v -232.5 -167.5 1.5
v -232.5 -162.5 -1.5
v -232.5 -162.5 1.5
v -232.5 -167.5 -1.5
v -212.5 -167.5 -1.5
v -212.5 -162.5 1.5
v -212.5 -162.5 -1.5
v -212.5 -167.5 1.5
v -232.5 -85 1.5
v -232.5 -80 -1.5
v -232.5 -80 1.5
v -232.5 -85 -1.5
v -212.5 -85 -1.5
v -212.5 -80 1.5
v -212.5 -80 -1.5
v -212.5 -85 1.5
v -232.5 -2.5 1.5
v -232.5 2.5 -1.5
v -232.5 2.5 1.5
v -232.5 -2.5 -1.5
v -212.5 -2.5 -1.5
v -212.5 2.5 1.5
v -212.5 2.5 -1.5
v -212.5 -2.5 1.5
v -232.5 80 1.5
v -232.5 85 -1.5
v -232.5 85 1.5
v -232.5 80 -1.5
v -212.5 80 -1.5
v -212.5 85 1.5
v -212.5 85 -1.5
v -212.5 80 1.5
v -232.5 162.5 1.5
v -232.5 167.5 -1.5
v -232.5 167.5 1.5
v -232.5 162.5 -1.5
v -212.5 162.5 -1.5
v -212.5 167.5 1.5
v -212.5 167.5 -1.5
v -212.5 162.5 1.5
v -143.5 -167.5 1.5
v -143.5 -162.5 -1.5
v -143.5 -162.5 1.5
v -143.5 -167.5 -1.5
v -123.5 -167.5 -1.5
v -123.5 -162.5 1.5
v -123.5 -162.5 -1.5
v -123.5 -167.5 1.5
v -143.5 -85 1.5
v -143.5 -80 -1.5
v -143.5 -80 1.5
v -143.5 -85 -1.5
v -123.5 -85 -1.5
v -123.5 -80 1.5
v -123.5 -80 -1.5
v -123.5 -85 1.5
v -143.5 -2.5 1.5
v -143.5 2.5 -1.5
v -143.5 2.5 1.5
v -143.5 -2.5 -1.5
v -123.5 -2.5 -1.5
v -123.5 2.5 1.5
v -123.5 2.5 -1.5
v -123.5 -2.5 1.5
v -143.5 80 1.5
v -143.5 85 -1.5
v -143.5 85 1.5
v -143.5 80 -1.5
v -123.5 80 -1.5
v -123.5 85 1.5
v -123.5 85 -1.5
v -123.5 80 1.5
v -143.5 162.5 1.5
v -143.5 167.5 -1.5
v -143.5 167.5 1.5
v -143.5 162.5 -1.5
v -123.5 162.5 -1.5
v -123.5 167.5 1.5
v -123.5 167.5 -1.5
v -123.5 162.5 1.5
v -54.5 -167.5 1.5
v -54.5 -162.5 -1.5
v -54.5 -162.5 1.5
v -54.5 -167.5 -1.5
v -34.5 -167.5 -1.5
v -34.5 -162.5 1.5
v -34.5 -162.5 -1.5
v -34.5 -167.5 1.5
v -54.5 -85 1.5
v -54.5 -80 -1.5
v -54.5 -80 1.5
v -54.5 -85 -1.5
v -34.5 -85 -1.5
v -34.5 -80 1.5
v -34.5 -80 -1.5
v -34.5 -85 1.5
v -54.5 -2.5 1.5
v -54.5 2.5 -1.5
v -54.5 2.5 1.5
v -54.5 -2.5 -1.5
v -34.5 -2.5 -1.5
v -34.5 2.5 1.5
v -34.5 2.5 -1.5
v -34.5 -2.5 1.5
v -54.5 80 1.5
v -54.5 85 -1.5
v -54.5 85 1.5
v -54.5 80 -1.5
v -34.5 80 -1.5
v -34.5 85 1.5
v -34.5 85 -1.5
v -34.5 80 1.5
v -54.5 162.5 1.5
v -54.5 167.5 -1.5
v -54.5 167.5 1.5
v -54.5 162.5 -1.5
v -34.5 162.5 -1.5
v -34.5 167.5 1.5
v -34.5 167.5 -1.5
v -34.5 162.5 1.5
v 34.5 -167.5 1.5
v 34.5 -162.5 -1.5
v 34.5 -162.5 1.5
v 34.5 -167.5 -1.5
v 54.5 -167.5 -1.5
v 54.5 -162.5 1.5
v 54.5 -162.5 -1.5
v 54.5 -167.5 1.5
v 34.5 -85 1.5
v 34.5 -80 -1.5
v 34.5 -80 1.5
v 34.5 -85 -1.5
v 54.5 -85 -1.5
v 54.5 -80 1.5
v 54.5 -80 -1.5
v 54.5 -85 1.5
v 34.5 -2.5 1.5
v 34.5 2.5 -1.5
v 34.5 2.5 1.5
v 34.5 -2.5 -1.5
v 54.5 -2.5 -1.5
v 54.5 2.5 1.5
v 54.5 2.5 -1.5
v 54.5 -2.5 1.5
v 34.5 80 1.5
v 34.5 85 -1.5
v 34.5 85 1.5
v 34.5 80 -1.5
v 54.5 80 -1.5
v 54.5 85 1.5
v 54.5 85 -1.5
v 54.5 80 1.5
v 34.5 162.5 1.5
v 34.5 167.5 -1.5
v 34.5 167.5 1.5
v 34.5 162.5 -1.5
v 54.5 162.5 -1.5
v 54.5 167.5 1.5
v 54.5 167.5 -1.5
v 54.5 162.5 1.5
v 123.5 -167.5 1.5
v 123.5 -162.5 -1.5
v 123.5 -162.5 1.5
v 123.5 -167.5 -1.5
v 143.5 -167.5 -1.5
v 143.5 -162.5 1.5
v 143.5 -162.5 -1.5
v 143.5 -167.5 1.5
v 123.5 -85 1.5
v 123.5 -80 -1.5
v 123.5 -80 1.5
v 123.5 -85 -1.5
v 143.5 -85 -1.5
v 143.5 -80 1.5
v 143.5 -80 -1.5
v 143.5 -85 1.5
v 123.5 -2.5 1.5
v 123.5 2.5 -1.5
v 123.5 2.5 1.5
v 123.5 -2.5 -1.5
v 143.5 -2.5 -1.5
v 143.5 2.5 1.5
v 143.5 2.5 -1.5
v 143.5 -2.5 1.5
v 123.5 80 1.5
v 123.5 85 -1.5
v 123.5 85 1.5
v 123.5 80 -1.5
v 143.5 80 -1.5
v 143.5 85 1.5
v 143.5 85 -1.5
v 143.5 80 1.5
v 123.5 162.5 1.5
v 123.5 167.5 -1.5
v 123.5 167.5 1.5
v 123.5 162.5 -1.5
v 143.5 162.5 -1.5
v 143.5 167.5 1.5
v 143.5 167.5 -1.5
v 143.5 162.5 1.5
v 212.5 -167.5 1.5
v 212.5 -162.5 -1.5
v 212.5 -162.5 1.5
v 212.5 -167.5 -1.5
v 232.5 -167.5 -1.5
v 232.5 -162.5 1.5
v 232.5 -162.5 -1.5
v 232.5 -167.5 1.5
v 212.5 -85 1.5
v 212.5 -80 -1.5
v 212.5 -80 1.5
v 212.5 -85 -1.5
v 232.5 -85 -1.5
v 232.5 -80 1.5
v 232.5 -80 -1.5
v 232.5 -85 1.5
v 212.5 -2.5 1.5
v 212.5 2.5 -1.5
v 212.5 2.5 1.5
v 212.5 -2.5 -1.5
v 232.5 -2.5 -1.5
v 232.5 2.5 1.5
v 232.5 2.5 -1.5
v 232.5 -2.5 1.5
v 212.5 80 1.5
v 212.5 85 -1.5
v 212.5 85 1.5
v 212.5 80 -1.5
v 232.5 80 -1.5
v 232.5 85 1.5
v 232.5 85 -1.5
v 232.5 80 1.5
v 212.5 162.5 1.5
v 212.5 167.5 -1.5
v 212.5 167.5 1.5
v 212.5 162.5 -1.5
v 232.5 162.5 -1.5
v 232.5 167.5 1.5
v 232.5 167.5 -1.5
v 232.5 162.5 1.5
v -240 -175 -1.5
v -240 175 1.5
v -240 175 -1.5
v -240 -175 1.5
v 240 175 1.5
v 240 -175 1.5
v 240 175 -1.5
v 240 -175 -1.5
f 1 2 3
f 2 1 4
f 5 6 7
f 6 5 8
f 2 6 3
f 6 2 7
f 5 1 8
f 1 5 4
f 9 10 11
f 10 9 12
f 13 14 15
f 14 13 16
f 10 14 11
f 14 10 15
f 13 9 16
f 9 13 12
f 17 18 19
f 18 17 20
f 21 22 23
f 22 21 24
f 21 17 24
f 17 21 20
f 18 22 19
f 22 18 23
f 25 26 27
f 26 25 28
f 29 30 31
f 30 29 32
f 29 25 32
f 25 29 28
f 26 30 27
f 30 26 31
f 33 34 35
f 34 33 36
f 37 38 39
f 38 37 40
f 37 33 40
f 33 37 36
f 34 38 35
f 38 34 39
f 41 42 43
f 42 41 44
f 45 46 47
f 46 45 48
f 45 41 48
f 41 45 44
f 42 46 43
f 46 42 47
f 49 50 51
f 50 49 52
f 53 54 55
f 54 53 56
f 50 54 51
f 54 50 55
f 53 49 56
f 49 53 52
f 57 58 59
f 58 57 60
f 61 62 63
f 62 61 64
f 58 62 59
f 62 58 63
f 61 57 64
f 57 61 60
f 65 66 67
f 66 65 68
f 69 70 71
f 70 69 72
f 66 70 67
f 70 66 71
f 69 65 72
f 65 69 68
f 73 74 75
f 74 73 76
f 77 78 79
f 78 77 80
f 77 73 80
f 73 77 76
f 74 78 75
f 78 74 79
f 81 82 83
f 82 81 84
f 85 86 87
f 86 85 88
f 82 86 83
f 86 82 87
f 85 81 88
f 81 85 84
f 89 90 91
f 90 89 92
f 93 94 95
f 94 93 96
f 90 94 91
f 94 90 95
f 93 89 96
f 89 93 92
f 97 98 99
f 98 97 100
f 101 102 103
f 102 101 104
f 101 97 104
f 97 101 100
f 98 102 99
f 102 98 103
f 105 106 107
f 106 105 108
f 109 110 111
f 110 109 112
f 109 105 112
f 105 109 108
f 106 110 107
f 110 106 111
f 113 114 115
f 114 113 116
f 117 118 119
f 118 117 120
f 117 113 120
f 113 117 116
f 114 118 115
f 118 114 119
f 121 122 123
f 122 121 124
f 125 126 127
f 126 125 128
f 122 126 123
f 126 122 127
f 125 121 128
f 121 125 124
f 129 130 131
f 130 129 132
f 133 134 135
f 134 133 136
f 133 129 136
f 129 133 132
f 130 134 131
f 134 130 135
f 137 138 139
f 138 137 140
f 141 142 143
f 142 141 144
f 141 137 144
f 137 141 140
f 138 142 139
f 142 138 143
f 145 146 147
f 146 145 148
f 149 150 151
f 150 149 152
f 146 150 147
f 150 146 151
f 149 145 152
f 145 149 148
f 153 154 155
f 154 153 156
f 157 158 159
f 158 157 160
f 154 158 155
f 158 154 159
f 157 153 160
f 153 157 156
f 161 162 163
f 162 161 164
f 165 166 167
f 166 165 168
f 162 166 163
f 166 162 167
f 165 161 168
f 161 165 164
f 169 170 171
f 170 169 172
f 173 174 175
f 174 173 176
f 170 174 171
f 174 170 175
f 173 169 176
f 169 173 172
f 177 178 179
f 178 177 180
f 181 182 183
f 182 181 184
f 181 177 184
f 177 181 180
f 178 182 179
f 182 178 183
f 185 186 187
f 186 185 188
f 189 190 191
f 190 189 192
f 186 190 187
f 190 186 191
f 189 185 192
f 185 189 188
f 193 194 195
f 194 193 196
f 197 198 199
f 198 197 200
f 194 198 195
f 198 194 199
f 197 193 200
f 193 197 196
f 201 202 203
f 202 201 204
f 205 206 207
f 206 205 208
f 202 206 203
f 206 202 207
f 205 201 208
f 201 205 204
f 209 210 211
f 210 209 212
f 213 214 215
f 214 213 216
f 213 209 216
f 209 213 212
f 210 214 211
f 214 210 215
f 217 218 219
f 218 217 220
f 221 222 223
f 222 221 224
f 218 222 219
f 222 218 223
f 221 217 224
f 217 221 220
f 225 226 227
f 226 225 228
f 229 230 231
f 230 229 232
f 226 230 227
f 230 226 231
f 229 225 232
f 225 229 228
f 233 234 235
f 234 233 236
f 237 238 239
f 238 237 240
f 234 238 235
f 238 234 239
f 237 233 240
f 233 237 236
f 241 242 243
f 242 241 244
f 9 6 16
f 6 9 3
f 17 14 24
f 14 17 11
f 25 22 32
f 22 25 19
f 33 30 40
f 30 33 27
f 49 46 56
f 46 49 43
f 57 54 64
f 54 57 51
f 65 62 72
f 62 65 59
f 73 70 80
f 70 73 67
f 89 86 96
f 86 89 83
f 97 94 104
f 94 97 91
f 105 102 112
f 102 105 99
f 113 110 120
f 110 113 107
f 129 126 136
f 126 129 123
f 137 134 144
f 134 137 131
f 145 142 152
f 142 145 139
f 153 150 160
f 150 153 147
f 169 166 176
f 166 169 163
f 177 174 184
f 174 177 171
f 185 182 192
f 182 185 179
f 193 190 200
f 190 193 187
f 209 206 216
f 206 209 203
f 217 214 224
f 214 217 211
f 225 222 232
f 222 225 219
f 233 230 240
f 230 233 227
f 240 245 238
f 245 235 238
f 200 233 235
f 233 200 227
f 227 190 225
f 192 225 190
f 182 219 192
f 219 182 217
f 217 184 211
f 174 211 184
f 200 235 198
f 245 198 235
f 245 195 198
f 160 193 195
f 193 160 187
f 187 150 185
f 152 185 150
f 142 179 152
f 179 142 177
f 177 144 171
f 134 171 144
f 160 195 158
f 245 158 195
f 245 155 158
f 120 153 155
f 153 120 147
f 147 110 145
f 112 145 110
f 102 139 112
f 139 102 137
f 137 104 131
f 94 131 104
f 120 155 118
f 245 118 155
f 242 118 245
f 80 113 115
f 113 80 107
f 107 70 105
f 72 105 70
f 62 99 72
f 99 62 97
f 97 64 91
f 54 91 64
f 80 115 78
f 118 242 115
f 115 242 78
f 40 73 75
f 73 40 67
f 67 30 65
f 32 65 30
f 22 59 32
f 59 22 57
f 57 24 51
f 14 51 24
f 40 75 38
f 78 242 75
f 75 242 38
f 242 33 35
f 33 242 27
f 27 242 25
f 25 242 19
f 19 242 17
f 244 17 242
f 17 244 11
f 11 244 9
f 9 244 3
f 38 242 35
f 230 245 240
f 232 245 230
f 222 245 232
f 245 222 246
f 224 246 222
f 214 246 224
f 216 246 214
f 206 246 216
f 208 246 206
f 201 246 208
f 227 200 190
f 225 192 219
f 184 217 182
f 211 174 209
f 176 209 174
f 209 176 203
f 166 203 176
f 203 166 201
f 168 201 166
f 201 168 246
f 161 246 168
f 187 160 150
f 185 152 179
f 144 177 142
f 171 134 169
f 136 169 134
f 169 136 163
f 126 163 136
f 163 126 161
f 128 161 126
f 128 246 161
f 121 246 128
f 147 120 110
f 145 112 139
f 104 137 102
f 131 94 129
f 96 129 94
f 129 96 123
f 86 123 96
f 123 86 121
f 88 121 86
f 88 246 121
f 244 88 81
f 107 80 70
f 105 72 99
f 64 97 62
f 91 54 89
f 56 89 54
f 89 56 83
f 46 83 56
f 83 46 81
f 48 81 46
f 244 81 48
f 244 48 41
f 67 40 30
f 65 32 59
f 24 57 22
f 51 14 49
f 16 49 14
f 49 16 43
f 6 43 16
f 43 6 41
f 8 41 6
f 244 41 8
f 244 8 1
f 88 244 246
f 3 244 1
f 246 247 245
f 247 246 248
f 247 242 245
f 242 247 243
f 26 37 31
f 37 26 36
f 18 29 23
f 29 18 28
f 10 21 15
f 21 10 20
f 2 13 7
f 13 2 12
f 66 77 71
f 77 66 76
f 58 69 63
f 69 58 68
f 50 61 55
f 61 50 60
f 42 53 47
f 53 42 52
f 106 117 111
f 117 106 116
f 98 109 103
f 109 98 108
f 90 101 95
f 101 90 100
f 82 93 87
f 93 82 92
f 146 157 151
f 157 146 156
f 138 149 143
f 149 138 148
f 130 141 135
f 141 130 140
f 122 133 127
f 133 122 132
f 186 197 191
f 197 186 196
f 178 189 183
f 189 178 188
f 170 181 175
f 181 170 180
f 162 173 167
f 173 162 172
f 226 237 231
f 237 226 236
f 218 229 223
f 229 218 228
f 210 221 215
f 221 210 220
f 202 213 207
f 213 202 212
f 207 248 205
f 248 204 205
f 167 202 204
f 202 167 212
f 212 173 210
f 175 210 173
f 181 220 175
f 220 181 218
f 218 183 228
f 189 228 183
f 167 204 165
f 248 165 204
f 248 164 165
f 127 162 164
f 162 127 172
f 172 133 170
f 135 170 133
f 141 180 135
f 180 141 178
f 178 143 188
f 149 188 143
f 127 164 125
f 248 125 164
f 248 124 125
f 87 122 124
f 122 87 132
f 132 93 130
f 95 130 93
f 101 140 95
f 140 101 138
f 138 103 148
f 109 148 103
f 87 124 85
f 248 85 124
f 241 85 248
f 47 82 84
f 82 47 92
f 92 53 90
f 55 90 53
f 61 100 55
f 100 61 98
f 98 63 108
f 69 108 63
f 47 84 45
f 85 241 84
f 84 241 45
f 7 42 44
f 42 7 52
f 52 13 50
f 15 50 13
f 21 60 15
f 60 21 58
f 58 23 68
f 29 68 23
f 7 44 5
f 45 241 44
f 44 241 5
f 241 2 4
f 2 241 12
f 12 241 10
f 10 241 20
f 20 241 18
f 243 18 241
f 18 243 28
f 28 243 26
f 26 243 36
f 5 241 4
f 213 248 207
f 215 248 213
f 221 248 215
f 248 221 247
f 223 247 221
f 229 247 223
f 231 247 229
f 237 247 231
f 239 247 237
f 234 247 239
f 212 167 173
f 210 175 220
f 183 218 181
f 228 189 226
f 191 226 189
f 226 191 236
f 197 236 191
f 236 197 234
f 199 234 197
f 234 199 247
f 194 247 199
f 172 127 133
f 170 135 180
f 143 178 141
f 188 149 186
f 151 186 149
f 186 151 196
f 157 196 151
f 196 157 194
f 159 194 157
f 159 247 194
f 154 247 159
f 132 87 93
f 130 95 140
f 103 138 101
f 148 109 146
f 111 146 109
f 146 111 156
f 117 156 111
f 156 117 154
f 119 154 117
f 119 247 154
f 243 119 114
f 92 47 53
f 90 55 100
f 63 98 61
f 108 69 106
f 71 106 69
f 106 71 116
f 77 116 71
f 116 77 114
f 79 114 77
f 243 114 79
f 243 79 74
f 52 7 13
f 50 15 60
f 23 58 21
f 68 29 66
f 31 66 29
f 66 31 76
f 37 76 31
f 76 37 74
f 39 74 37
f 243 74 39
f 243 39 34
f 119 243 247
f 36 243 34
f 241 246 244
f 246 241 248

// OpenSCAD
// draw a hole
// size = [ x, y, z ] the size of the cube
module hole( size, pos=[0, 0, 0] ){
  translate( pos ) {
    cube( size , true);
  }
}

//  create a board with holes
//  -------------------------
//
//    +--------------------------------------------------+
//    |   ---       ---       ---       ---        ---   |
//    |                                                  |
//    |                                                  |
//    |   ---       ---       ---       ---        ---   |
//    |                                                  |
//    |                                                  |
//    |   ---       ---       ---       ---        ---   |
//    |                                                  |
//    |                                                  |
//    |   ---       ---       ---       ---        ---   |
//    |                                                  |
//    +--------------------------------------------------+
//
// holes  = [ x , y ]  number of holes
// size   = [ x, y, z] the size of the board
// hole   = [ x, y ]   the size of a hole in the board
// offset = [ x, y ]   space to save at the borders
//
module board( holes, size, holesize , offset = [ 0, 0 ]){

    full_xsize = size[0];
    full_ysize = size[1];

    xsize = full_xsize - offset[0];
    ysize = full_ysize - offset[1];
    depth = size[2];

    xholes = holes[0];
    yholes = holes[1];

    xhole_size = holesize[0] ;
    yhole_size = holesize[1] ;

    xoffset = xhole_size / 2;
    yoffset = yhole_size / 2;

    full_xhole_size = xholes * xhole_size;
    full_yhole_size = yholes * yhole_size;

    full_xhole_space = xsize - full_xhole_size - xhole_size;
    full_yhole_space = ysize - full_yhole_size - yhole_size;

    xhole_space = full_xhole_space / xholes ;
    yhole_space = full_yhole_space / yholes ;

    difference(){
        color("yellow")cube(size, true);
        translate( [ - xsize / 2
                   , - ysize /2
                   , 0
                   ] ){
            for (x = [0 : xholes]){
                for (y = [0 : yholes]){
                    color("LightBlue"){
                        hole( [ xhole_size
                              , yhole_size
                              , depth + 10
                              ]
                            , [ xoffset + x * xhole_size + x * xhole_space
                              , yoffset + y * yhole_size + y * yhole_space
                              , 0
                              ]
                        );
                    }
                }
            }
       }
  }
}


// example board
board( [5, 4]        // holes todo : not correct [+1, +1] has to be calculated always
     , [480, 350, 3] // board size
     , [20, 5]       // holesize
     , [15,15]       // offset
);
